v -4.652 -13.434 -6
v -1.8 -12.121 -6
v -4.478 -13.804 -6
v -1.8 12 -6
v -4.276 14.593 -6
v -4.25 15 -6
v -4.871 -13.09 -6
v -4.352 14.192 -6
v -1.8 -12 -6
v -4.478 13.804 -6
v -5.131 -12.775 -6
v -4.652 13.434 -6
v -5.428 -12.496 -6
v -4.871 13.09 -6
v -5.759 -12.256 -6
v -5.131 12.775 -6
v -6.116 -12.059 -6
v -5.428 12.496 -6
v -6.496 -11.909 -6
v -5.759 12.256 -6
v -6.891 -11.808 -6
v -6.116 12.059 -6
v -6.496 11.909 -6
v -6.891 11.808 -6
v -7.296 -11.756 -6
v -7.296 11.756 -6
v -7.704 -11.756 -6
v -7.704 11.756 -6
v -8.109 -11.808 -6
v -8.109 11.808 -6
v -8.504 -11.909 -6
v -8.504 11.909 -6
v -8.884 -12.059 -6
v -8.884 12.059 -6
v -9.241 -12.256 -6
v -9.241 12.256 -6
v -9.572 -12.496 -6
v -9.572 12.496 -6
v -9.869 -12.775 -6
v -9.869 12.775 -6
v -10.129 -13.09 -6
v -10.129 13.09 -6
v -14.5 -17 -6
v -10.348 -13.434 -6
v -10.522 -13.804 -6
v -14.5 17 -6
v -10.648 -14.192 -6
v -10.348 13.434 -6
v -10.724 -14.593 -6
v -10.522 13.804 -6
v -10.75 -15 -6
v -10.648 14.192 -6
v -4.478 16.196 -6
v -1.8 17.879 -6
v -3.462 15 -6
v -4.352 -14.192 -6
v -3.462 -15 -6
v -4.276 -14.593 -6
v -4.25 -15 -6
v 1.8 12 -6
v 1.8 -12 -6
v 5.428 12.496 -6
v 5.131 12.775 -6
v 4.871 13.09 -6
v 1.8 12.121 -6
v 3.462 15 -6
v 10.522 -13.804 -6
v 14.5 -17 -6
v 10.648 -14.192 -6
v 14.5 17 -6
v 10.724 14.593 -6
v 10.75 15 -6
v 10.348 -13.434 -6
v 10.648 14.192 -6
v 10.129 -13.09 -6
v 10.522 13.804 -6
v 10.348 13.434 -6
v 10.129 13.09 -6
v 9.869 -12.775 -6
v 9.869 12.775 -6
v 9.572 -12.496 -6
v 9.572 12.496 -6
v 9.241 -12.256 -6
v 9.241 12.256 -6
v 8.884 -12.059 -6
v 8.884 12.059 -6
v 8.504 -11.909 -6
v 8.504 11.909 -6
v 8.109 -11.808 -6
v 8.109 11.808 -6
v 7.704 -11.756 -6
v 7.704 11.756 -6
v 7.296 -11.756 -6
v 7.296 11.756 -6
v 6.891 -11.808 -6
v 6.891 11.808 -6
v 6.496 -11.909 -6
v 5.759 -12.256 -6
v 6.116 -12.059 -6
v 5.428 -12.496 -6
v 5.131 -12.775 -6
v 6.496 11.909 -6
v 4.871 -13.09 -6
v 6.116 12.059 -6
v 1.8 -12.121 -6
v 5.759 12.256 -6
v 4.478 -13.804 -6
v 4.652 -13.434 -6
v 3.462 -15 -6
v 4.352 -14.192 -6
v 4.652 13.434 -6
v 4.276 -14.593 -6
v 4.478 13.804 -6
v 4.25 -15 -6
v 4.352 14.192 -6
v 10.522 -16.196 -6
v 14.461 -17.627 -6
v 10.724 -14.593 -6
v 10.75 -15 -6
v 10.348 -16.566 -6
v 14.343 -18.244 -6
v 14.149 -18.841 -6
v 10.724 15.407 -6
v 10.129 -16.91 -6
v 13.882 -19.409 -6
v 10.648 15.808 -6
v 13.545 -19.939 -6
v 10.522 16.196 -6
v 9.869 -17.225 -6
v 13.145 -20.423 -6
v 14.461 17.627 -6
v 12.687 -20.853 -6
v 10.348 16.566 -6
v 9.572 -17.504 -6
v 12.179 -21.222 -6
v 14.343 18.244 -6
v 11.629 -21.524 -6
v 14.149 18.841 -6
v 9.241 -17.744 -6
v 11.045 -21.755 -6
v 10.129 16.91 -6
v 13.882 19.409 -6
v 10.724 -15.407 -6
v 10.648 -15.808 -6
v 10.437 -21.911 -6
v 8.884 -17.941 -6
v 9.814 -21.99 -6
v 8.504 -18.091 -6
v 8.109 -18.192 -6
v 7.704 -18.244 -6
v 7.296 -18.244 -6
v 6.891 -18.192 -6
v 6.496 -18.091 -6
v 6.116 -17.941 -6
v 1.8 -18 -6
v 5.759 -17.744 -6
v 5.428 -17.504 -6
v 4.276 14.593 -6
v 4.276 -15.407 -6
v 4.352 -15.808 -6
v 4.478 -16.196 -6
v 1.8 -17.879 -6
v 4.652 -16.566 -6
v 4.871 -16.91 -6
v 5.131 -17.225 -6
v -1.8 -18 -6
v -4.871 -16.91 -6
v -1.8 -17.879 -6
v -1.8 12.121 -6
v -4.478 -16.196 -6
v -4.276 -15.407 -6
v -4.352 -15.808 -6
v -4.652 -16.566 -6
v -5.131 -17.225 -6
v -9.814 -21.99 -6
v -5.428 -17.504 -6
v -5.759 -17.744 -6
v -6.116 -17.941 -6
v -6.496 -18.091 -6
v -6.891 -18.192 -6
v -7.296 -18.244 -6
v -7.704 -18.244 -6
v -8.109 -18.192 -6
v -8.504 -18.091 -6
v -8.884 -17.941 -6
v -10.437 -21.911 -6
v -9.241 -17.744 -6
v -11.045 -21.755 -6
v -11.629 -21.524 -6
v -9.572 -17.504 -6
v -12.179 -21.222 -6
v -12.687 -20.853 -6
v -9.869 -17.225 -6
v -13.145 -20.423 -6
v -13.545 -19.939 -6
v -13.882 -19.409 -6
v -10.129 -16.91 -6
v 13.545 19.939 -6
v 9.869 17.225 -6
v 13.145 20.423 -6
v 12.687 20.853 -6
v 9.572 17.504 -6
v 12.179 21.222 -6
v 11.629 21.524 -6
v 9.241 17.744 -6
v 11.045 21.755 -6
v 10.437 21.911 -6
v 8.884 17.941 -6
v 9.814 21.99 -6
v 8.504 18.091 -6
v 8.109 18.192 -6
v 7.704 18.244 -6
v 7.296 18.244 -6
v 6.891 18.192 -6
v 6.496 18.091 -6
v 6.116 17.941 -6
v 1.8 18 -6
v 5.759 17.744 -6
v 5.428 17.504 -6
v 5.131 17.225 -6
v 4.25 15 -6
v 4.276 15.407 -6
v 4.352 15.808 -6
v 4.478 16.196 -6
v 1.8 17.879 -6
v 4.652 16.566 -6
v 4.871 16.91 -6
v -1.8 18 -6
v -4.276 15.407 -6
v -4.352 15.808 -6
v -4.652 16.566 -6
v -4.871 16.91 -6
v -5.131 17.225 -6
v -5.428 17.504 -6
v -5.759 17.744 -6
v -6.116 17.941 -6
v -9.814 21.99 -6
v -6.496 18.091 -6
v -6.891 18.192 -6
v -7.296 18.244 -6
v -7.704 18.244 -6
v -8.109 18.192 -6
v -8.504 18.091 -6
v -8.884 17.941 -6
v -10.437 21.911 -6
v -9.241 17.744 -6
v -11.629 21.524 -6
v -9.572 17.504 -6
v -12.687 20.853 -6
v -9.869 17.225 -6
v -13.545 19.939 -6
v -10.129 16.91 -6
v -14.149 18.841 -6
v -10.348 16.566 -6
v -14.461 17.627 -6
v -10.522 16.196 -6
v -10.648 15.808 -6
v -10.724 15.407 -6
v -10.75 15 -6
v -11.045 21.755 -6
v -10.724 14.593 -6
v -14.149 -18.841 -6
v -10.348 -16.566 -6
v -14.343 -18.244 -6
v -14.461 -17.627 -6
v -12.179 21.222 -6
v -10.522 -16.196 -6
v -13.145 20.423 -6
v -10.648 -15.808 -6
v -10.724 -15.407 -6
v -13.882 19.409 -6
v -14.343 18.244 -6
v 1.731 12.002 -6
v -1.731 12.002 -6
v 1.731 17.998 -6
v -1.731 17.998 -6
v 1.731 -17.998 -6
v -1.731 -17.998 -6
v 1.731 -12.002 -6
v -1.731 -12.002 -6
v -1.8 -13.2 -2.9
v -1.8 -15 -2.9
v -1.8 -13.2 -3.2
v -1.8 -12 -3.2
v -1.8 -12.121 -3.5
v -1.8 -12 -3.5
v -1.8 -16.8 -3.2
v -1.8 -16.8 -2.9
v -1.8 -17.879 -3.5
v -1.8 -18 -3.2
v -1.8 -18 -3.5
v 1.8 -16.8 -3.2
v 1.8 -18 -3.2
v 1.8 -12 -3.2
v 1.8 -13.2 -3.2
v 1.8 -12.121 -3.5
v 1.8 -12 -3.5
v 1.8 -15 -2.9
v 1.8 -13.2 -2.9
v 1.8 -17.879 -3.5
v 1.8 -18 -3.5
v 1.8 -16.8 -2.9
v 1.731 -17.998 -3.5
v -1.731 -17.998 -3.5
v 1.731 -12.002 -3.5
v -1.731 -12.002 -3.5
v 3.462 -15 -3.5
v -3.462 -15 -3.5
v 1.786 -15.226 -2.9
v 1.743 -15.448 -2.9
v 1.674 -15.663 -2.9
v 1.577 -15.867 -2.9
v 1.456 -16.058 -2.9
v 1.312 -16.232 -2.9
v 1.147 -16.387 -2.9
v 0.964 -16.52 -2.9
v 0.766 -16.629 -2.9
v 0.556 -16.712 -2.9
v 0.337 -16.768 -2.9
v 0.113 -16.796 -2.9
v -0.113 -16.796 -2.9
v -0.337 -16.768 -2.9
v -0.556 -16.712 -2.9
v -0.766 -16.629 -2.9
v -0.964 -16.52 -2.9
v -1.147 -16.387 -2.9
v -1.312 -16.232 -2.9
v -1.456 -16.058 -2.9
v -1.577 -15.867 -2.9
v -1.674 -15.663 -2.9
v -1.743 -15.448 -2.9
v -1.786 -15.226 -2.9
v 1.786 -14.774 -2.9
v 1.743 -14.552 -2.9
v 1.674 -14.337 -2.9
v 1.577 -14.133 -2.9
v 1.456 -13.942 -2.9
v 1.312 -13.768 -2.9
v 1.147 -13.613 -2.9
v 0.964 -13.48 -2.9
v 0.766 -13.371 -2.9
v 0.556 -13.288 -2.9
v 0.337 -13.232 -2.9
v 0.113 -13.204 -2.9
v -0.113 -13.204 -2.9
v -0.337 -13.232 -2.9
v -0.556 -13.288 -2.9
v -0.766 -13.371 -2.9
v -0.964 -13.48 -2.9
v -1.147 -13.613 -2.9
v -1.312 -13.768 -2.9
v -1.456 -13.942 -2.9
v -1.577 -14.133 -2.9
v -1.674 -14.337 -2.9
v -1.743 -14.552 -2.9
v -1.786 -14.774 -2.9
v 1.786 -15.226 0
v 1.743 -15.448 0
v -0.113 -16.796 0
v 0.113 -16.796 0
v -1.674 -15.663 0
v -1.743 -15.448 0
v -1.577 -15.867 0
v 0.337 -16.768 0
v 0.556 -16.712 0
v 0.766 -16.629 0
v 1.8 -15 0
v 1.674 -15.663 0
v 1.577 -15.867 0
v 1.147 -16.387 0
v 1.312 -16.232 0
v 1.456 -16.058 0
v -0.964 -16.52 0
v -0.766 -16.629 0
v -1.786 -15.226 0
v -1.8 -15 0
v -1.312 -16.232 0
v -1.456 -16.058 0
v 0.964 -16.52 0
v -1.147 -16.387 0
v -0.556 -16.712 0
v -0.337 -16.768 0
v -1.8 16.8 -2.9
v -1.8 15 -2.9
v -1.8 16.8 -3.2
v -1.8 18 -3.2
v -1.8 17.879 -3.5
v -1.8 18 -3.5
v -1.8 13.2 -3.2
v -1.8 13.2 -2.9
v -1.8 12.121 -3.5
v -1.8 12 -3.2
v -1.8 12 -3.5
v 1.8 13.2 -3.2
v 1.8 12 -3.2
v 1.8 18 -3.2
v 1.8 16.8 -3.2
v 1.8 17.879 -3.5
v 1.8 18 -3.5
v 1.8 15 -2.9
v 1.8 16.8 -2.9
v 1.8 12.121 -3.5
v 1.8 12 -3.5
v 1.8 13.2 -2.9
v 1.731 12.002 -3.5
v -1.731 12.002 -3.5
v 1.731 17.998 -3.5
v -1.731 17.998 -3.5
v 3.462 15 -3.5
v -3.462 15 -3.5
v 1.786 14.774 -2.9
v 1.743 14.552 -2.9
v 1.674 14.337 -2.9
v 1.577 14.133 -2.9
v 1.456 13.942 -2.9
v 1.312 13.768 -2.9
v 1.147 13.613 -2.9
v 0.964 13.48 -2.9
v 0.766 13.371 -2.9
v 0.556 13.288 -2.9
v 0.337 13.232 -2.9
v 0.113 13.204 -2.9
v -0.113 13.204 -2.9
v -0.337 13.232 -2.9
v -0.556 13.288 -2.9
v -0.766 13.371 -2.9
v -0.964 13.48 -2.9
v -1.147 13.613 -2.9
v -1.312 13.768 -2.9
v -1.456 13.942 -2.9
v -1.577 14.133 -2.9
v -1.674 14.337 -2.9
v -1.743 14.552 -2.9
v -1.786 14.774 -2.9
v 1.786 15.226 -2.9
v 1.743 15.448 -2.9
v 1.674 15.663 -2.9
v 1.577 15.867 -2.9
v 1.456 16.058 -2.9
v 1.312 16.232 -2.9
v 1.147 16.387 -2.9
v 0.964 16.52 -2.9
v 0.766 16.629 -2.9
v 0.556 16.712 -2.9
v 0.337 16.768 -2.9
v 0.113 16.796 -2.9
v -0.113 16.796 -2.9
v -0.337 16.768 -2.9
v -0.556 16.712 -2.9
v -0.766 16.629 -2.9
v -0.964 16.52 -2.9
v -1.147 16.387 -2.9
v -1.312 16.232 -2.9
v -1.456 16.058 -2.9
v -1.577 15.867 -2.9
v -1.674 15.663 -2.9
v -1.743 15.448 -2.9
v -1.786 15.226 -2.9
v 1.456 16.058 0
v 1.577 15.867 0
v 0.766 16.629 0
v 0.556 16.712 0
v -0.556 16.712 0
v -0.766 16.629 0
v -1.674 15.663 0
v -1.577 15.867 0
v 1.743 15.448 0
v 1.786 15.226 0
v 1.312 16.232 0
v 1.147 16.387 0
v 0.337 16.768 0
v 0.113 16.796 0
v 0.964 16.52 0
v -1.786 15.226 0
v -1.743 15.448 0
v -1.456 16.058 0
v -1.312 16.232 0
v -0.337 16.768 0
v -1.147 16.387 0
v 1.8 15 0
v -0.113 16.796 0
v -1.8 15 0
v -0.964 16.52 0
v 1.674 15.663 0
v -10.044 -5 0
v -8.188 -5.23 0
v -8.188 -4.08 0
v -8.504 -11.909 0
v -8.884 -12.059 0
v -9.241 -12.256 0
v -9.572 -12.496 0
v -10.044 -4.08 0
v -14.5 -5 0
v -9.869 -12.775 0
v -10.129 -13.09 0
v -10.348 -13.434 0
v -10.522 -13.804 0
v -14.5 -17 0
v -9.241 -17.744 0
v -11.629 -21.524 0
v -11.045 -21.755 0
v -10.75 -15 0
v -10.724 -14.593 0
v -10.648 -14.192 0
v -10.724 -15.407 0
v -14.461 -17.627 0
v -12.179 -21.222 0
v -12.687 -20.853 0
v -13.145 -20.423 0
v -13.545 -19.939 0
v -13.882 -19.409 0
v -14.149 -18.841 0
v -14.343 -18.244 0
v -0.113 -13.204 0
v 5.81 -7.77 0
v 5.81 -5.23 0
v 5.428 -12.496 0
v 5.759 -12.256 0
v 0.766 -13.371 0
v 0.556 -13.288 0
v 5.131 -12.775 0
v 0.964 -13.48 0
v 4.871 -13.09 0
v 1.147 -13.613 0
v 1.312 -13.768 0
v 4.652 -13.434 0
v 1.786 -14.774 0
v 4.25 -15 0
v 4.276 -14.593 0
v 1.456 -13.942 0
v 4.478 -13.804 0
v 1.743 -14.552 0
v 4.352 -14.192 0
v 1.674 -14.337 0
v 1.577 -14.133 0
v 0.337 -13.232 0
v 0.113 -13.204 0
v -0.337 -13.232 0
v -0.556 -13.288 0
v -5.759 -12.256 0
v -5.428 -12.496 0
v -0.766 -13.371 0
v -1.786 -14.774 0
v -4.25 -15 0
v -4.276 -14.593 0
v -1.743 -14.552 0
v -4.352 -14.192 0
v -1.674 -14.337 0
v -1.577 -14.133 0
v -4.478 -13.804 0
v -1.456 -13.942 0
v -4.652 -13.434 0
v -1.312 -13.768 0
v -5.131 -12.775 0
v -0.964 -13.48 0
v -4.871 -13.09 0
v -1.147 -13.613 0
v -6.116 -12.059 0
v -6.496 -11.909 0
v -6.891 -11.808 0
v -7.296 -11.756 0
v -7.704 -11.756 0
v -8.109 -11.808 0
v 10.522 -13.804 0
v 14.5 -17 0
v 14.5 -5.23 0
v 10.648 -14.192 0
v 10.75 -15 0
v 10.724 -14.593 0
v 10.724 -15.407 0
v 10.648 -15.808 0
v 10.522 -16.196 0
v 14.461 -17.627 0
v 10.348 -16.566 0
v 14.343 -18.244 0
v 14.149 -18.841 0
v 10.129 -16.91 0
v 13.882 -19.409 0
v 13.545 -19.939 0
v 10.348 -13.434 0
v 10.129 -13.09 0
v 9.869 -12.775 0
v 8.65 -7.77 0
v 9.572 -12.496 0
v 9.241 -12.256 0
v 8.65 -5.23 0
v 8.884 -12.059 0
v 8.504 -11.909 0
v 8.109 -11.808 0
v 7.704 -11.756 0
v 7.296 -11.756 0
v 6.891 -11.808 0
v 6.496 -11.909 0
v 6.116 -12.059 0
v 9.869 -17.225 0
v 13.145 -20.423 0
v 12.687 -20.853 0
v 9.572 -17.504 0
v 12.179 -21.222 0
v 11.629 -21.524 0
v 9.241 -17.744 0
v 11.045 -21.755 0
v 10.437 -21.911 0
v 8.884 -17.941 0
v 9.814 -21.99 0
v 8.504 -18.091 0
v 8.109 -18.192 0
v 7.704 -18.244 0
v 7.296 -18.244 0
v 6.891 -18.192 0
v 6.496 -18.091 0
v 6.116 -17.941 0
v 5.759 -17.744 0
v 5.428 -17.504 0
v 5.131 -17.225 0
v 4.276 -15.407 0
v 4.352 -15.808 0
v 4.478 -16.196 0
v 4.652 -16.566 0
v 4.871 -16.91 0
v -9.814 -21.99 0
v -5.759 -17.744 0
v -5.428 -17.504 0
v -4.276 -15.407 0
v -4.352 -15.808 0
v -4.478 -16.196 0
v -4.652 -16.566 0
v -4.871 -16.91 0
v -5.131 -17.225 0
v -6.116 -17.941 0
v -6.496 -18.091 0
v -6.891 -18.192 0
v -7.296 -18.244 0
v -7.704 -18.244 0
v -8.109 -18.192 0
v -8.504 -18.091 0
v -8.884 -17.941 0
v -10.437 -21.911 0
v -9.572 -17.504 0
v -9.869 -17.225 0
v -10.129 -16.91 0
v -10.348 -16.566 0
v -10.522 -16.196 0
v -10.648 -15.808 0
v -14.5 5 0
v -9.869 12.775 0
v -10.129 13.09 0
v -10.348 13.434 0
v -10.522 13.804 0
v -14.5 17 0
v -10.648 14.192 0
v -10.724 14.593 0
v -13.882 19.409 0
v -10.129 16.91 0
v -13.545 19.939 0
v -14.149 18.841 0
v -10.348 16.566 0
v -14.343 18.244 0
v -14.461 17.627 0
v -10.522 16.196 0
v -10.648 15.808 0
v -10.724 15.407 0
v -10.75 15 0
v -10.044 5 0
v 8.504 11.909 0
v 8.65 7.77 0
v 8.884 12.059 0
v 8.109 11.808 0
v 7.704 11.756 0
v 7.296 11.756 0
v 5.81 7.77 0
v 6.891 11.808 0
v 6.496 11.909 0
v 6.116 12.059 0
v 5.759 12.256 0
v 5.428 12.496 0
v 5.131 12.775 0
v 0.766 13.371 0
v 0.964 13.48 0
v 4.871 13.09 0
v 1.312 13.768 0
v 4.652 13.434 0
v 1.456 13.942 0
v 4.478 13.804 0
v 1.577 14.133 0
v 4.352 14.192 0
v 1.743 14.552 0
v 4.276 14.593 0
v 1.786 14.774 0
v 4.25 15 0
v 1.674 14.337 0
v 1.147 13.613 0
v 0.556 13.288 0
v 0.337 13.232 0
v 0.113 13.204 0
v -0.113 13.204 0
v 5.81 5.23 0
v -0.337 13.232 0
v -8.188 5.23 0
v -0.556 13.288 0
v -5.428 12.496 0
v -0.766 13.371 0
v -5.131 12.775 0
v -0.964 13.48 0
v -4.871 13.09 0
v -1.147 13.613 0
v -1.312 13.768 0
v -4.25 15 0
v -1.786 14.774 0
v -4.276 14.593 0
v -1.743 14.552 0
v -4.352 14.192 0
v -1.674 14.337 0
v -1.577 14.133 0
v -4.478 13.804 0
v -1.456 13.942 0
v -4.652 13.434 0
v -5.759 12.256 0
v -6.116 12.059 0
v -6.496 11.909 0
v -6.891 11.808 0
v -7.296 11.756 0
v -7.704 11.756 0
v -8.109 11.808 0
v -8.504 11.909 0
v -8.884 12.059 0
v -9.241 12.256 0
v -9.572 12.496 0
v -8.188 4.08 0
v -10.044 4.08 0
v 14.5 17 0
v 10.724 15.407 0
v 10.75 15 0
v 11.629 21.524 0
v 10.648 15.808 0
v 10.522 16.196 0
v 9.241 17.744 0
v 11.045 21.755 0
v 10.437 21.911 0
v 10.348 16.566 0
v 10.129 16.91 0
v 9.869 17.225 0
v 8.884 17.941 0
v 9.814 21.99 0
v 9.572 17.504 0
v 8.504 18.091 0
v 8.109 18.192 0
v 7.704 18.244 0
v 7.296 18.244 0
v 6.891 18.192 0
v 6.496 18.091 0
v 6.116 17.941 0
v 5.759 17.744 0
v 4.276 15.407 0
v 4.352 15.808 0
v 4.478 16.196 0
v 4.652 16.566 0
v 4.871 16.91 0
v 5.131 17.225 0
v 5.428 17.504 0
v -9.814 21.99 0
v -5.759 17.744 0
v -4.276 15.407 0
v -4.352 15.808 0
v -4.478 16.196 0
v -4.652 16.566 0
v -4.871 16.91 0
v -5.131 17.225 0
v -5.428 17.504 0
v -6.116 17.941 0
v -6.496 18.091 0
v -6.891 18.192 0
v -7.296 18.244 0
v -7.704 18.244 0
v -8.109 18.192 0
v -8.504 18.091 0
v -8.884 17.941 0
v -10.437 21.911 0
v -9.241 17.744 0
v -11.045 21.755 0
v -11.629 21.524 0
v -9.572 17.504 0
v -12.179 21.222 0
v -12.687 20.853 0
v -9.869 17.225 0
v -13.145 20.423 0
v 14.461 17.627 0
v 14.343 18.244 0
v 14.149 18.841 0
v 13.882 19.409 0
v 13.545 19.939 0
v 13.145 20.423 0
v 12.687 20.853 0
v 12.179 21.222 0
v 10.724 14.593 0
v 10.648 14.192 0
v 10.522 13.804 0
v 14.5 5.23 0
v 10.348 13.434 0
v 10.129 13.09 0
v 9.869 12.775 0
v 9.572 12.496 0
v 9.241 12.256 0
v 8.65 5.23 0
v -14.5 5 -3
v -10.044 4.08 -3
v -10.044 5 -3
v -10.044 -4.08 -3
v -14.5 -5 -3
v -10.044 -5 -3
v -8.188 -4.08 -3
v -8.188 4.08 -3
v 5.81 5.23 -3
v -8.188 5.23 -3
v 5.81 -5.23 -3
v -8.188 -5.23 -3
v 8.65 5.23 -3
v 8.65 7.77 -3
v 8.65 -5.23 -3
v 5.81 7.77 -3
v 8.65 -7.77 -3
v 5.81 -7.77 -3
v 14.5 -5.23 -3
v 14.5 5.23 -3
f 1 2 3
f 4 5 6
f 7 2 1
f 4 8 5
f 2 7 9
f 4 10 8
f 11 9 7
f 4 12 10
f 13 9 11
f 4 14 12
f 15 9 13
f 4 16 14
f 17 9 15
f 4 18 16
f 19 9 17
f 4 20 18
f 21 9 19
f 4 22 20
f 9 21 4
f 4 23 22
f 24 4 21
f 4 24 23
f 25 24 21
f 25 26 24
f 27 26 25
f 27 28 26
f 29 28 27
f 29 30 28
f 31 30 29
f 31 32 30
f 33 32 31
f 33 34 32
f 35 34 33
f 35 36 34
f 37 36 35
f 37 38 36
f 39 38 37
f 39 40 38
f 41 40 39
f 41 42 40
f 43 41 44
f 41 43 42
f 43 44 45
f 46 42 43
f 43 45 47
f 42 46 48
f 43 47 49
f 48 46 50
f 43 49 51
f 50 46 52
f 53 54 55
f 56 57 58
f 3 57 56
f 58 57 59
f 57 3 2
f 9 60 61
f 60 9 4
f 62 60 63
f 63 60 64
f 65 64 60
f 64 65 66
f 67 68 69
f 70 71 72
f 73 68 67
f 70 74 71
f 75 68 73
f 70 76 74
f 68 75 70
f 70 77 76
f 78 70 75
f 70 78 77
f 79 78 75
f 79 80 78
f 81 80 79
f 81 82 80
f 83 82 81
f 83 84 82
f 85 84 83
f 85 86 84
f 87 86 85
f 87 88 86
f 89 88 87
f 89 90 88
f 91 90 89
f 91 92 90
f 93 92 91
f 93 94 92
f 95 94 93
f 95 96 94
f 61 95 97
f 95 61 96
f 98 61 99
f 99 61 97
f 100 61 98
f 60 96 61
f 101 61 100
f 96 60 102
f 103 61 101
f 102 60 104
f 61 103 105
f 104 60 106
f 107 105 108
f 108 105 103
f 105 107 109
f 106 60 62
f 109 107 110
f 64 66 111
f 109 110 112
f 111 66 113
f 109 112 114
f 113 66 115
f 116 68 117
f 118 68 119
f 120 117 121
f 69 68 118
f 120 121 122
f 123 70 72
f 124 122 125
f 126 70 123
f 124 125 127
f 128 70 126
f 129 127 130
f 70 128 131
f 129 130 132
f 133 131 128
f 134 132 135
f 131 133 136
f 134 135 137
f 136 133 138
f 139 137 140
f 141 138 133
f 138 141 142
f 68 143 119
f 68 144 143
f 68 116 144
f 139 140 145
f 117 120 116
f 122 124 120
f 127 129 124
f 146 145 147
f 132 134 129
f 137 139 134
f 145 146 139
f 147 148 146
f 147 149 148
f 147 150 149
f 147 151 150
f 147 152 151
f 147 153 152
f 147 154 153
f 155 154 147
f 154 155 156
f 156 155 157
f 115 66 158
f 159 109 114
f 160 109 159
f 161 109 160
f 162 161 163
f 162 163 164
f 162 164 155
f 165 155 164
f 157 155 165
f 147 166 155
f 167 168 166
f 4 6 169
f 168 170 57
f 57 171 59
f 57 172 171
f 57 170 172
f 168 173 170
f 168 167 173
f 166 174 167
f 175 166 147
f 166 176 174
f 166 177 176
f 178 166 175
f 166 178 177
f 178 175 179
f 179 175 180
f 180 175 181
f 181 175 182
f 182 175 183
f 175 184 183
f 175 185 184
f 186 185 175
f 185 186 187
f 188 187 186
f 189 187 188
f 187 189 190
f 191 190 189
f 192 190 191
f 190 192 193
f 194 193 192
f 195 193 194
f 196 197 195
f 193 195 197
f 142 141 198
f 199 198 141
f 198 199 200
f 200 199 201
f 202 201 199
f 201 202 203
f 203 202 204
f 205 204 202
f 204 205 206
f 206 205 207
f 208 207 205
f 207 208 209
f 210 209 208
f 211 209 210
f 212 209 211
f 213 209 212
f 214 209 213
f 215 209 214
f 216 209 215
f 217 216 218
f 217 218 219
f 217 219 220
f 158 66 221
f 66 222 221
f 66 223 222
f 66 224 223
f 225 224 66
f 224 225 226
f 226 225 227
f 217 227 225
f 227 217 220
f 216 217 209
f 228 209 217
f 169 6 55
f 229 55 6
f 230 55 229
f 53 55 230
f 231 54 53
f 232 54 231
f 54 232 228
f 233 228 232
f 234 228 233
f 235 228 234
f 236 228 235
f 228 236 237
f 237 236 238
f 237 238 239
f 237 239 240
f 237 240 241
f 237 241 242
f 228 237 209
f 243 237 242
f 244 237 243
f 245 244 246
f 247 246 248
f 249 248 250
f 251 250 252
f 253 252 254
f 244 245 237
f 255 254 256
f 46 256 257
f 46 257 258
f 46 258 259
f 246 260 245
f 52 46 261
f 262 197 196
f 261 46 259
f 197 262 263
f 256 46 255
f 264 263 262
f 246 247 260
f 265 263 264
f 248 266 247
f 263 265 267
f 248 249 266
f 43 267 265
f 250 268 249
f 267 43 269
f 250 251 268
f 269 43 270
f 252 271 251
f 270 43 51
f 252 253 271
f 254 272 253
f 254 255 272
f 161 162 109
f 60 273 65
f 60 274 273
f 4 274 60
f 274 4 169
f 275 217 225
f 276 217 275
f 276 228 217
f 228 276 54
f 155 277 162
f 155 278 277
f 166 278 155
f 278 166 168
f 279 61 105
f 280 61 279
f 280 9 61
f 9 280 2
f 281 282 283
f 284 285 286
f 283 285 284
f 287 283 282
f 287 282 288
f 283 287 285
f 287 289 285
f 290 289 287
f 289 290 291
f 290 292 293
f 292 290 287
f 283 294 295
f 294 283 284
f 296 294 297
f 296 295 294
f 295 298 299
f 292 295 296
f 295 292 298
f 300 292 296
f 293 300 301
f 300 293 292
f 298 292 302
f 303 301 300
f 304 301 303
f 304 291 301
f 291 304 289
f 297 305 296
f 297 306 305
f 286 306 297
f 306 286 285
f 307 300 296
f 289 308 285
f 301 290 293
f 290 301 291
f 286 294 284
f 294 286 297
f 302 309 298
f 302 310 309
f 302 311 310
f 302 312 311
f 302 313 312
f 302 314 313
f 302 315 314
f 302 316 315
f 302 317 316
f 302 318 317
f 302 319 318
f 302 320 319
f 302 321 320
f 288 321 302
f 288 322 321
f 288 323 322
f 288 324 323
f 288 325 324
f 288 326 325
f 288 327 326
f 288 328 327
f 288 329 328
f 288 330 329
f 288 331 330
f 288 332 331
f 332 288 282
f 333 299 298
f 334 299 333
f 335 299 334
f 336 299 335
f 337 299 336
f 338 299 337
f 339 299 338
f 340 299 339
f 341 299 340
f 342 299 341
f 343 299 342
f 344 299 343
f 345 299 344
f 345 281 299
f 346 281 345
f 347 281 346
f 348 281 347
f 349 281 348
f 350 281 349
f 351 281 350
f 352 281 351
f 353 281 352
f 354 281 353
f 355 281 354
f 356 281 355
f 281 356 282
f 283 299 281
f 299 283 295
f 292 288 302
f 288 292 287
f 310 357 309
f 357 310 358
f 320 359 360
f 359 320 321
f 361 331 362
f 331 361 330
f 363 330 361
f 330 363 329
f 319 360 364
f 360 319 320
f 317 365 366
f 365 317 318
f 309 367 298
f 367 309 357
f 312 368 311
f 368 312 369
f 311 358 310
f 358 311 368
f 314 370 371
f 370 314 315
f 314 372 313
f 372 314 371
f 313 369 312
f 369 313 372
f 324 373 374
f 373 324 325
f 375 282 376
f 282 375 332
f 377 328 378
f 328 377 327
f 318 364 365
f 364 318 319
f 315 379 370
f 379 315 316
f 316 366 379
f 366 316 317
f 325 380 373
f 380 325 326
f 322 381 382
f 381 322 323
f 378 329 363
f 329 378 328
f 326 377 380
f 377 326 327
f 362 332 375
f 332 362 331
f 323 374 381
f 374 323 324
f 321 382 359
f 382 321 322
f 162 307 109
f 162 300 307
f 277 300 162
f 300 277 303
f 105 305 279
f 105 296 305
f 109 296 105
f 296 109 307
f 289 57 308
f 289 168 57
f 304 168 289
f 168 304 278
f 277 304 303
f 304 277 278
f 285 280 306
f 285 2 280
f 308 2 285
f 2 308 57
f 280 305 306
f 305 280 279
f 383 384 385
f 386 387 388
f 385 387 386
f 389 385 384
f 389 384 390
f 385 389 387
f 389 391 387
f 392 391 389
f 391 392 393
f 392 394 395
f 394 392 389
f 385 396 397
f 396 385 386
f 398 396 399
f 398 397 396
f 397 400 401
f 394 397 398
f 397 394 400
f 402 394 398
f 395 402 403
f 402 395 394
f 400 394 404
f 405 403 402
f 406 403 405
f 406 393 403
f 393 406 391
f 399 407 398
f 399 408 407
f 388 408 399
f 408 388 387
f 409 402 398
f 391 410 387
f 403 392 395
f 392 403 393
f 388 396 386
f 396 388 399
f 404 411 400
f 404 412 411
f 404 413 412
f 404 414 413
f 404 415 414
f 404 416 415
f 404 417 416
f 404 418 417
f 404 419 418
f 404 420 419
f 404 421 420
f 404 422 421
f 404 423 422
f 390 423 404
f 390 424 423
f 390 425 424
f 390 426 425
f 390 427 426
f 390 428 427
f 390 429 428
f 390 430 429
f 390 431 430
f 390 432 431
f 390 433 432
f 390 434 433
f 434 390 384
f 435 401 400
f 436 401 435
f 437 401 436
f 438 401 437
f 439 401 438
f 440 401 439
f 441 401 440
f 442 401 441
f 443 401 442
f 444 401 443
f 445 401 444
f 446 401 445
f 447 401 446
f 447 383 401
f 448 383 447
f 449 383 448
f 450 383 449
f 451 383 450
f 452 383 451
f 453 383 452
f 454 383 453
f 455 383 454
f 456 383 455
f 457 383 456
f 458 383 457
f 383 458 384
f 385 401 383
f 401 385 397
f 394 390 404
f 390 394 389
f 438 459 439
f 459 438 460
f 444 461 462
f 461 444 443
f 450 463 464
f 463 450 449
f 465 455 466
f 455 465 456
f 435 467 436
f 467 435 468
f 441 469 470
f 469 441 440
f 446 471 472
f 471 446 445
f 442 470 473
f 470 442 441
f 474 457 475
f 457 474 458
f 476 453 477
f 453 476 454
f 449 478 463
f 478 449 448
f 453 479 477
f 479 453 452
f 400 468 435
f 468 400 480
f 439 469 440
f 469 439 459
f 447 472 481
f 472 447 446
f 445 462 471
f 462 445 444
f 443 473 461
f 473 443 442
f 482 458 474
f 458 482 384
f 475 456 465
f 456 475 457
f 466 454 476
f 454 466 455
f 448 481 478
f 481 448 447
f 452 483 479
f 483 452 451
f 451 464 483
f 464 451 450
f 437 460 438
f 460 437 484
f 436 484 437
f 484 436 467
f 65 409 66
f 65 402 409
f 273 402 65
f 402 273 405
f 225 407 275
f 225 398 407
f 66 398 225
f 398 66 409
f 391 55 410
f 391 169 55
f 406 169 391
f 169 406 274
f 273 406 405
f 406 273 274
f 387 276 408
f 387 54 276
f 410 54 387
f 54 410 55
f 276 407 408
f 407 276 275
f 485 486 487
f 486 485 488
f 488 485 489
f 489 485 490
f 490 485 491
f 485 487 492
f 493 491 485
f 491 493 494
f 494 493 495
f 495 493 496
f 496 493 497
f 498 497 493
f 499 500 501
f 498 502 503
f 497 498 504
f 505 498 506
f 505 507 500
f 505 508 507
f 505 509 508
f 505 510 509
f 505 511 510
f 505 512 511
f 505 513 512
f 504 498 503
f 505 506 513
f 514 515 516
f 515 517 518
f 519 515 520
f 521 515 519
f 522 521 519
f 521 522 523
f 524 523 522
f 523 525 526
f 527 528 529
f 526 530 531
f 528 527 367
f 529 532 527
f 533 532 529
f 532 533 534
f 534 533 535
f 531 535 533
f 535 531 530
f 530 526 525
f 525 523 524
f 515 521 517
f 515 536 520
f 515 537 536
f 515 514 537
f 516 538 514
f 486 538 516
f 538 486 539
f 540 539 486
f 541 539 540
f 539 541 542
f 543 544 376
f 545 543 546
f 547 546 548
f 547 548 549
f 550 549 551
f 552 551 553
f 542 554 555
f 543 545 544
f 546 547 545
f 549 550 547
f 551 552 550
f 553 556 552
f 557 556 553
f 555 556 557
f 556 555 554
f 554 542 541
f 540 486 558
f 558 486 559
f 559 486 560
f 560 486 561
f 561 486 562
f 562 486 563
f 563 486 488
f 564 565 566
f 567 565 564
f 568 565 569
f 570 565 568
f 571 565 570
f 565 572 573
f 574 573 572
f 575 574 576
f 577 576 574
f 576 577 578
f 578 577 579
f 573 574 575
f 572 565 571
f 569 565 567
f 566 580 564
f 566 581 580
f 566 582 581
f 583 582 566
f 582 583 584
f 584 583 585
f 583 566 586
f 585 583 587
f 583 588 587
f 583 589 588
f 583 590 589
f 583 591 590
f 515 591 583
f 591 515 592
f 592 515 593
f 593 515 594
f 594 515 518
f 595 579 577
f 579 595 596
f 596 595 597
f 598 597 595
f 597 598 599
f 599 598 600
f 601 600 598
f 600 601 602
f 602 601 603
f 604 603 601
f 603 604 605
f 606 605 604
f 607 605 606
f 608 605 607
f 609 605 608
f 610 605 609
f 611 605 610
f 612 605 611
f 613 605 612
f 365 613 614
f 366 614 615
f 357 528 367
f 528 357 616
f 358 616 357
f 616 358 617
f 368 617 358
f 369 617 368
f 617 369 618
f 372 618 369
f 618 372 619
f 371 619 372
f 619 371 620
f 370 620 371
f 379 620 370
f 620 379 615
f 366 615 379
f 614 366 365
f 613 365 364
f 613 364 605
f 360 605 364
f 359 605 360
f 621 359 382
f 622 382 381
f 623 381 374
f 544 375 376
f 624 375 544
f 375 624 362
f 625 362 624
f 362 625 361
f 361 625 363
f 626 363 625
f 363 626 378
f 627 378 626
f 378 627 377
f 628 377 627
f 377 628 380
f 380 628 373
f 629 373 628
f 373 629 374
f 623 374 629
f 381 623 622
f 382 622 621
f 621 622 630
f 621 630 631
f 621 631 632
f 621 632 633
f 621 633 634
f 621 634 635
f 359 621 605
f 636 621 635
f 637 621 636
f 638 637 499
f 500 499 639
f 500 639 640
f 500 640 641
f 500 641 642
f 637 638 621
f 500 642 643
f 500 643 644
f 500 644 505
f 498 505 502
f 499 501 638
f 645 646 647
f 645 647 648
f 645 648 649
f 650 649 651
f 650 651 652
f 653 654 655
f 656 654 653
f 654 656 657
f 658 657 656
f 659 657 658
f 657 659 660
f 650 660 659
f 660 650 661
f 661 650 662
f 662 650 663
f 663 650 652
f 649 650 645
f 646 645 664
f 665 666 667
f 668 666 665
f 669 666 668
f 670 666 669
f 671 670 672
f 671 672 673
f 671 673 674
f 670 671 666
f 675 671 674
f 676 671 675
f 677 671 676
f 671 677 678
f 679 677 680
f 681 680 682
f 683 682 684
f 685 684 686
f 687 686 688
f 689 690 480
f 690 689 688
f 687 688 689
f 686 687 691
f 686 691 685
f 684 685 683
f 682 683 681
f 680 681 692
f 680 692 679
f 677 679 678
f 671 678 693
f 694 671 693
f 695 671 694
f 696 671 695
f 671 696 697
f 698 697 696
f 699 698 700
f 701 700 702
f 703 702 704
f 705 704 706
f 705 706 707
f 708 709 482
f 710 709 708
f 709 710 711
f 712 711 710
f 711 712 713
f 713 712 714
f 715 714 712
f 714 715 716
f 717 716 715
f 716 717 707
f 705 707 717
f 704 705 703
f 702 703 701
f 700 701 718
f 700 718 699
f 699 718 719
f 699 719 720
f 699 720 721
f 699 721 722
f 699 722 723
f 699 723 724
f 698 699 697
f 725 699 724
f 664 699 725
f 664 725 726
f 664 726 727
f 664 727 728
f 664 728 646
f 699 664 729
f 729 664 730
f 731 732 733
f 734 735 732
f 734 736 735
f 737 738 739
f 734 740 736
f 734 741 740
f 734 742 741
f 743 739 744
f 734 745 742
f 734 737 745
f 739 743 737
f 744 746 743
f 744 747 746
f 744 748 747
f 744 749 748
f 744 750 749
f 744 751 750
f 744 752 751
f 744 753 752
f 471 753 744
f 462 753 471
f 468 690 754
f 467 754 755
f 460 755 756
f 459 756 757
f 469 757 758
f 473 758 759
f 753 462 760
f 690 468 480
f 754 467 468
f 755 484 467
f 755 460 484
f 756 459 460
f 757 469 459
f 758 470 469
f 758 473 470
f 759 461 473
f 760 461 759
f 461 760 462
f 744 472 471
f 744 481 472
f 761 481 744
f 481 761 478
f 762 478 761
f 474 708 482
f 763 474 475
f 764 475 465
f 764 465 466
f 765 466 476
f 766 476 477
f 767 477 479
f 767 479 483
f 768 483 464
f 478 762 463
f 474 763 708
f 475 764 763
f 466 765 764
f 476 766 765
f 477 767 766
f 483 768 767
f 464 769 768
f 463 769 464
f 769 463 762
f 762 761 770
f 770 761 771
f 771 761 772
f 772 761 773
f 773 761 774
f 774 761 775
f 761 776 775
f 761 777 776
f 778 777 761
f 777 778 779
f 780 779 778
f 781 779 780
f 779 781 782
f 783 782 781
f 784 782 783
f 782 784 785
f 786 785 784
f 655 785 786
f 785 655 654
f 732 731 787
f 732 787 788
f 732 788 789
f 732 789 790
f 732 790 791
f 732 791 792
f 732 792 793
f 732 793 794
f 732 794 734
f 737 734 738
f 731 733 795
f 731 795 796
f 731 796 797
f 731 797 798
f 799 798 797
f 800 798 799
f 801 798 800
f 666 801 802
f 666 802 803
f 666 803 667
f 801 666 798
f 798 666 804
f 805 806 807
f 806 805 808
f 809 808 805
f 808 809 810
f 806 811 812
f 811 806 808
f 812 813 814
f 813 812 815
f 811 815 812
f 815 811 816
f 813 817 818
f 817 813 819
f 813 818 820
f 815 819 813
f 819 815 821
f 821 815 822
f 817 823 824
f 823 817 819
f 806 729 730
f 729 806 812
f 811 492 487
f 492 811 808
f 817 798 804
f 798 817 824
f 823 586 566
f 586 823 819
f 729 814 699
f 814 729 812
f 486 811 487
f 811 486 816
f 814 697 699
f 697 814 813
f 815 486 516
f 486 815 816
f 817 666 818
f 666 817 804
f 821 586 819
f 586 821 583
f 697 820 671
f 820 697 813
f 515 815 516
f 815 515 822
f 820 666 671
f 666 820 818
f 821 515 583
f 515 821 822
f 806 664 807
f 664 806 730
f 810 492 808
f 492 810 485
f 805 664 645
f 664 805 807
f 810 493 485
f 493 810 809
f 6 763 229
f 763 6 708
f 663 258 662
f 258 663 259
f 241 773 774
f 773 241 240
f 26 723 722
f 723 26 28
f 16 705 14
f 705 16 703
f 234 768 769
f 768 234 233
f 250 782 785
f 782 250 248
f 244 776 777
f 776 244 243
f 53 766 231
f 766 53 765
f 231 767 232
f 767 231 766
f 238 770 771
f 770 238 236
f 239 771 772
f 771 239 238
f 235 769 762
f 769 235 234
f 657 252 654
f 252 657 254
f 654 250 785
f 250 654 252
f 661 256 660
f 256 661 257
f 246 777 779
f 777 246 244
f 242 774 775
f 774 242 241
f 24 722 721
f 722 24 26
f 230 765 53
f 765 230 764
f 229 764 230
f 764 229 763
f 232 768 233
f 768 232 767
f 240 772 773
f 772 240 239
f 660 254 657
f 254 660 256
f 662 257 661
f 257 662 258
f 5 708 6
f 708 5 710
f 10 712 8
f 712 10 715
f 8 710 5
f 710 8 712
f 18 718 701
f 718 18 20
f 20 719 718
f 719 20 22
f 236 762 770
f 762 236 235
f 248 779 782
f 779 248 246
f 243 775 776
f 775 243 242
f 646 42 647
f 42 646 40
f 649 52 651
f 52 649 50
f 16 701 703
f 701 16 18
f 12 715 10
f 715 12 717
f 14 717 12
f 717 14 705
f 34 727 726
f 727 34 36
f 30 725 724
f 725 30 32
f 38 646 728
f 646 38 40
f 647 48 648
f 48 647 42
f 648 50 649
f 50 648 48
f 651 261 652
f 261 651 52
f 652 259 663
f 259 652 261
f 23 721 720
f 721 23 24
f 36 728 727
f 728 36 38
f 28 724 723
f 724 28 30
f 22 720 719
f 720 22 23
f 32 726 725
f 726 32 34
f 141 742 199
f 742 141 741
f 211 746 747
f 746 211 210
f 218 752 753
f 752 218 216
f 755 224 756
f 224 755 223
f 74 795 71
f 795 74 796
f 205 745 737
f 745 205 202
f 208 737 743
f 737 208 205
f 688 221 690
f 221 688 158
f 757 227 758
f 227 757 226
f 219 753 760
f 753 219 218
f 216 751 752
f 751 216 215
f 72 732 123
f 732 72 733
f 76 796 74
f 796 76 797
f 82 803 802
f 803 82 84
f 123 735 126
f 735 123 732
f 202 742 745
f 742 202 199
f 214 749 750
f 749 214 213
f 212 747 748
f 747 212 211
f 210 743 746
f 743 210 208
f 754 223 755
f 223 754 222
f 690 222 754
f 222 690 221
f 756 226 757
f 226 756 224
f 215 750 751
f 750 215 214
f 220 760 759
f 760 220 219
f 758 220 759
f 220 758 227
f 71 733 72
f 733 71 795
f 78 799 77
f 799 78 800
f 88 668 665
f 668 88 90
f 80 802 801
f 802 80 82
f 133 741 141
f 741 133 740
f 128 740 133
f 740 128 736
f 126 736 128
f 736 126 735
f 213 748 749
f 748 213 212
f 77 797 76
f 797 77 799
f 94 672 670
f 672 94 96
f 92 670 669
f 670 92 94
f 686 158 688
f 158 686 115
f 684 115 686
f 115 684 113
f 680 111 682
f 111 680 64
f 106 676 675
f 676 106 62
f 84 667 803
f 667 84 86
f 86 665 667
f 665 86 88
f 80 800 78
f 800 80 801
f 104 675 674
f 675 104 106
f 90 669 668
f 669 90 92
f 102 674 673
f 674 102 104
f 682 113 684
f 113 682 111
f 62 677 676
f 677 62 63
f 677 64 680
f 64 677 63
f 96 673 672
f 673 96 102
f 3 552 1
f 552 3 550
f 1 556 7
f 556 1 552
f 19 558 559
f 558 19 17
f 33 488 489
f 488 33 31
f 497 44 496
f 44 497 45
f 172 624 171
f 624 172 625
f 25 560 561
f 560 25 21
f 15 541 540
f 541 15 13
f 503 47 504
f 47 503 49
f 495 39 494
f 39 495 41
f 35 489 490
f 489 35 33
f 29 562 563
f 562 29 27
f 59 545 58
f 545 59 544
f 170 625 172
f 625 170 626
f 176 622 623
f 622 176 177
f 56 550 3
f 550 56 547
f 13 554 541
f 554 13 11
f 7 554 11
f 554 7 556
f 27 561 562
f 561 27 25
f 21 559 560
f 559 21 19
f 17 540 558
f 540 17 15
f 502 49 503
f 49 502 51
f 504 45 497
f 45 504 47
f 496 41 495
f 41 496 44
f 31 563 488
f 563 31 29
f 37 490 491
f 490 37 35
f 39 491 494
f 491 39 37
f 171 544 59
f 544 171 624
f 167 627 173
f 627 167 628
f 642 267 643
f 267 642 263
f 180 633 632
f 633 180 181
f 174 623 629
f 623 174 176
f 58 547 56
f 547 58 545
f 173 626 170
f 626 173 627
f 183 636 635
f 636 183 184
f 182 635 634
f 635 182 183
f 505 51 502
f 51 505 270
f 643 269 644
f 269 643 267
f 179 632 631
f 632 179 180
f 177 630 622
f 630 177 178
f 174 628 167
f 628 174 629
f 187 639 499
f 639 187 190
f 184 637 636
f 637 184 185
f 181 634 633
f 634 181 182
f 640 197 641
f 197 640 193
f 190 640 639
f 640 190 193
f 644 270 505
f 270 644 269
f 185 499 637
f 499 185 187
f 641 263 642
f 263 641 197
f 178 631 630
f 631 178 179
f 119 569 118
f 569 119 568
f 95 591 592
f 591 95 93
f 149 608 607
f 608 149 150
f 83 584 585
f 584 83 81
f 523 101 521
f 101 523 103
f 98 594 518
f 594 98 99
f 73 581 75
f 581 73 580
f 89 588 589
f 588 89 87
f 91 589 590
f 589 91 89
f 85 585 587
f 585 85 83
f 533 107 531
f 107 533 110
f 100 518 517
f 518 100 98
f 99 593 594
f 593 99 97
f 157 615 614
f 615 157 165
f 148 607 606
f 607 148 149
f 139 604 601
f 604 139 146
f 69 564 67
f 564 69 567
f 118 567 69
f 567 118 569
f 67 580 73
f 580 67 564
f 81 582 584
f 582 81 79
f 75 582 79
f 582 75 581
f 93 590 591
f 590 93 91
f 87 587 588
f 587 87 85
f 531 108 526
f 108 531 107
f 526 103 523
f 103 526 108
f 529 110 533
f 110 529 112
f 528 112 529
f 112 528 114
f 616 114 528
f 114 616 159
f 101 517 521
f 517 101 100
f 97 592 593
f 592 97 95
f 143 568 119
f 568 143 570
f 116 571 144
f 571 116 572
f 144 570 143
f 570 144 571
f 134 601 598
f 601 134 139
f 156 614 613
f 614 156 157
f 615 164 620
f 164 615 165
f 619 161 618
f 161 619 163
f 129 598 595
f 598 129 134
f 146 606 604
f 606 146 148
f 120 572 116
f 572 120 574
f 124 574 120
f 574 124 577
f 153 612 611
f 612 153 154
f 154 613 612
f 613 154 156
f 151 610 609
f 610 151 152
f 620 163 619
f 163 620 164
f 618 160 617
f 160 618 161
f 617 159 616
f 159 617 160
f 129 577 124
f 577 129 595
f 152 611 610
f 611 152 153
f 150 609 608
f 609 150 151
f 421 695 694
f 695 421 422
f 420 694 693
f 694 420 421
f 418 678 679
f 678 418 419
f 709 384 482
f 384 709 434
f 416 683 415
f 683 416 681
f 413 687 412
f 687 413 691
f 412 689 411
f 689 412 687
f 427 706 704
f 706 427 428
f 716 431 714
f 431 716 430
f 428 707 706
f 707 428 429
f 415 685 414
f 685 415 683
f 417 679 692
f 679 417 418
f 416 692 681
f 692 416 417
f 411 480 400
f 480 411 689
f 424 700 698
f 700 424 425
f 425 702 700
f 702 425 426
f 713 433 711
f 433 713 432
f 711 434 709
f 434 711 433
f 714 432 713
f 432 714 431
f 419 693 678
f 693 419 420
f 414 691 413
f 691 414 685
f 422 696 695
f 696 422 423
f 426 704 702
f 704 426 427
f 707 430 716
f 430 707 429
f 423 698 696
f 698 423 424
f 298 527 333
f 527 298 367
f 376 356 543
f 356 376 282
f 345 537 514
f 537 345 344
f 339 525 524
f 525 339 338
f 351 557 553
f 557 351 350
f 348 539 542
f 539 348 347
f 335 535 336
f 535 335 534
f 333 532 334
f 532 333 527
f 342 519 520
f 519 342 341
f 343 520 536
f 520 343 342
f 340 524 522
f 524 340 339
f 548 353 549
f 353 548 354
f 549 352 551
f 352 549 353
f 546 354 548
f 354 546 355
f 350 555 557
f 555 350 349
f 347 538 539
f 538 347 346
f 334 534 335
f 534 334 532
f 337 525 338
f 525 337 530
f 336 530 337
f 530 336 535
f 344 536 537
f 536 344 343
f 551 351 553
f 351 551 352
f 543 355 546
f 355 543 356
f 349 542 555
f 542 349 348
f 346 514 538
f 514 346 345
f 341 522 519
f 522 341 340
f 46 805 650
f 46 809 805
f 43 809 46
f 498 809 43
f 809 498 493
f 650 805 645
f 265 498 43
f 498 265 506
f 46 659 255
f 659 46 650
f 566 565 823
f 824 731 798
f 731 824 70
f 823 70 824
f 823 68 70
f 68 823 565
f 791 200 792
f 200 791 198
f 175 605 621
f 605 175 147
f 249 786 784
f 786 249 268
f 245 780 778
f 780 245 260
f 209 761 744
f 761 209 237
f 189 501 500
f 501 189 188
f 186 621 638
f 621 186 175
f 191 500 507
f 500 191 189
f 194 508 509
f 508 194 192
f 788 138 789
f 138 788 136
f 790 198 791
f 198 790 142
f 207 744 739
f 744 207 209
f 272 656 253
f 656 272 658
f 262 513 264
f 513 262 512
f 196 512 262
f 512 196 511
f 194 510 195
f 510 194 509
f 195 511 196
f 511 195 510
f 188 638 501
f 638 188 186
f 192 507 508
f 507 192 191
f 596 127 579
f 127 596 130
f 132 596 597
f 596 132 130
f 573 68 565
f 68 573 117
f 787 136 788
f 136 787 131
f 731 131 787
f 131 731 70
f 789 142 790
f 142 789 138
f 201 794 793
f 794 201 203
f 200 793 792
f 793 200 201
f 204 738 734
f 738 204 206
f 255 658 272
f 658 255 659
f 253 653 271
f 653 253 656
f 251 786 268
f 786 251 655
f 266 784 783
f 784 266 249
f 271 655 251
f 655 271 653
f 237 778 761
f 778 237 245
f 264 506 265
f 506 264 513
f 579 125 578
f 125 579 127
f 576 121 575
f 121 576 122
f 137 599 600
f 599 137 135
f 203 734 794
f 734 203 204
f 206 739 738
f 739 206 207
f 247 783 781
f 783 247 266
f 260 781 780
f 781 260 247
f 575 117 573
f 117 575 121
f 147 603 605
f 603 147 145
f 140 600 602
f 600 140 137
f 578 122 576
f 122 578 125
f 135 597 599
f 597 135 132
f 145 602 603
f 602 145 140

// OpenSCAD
$fn = 50;


difference() {
	union() {
		translate(v = [0, 0, -6]) {
			hull() {
				translate(v = [-9.5000000000, 17.0000000000, 0]) {
					cylinder(h = 6, r = 5);
				}
				translate(v = [9.5000000000, 17.0000000000, 0]) {
					cylinder(h = 6, r = 5);
				}
				translate(v = [-9.5000000000, -17.0000000000, 0]) {
					cylinder(h = 6, r = 5);
				}
				translate(v = [9.5000000000, -17.0000000000, 0]) {
					cylinder(h = 6, r = 5);
				}
			}
		}
	}
	union() {
		translate(v = [0, -15, -6]) {
			rotate(a = [0, 0, 0]) {
				difference() {
					union() {
						translate(v = [-1.8000000000, -3.0000000000, -0.3000000000]) {
							cube(size = [3.6000000000, 6.0000000000, 0.3000000000]);
						}
						translate(v = [-1.8000000000, -1.8000000000, -0.6000000000]) {
							cube(size = [3.6000000000, 3.6000000000, 0.3000000000]);
						}
						translate(v = [-1.8000000000, -3.0000000000, 2.5000000000]) {
							cube(size = [3.6000000000, 6.0000000000, 0.3000000000]);
						}
						translate(v = [-1.8000000000, -1.8000000000, 2.8000000000]) {
							cube(size = [3.6000000000, 3.6000000000, 0.3000000000]);
						}
						translate(v = [0, 0, -50.0000000000]) {
							cylinder(h = 100, r = 1.8000000000);
						}
						linear_extrude(height = 2.5000000000) {
							polygon(points = [[3.4620000000, 0.0000000000], [1.7310000000, 2.9981799479], [-1.7310000000, 2.9981799479], [-3.4620000000, 0.0000000000], [-1.7310000000, -2.9981799479], [1.7310000000, -2.9981799479]]);
						}
						translate(v = [-1.8000000000, -3.0000000000, -0.3000000000]) {
							cube(size = [3.6000000000, 6.0000000000, 0.3000000000]);
						}
						translate(v = [-1.8000000000, -1.8000000000, -0.6000000000]) {
							cube(size = [3.6000000000, 3.6000000000, 0.3000000000]);
						}
						translate(v = [-1.8000000000, -3.0000000000, 2.5000000000]) {
							cube(size = [3.6000000000, 6.0000000000, 0.3000000000]);
						}
						translate(v = [-1.8000000000, -1.8000000000, 2.8000000000]) {
							cube(size = [3.6000000000, 3.6000000000, 0.3000000000]);
						}
						translate(v = [0, 0, -50.0000000000]) {
							cylinder(h = 100, r = 1.8000000000);
						}
						translate(v = [-1.8000000000, -3.0000000000, -0.3000000000]) {
							cube(size = [3.6000000000, 6.0000000000, 0.3000000000]);
						}
						translate(v = [-1.8000000000, -1.8000000000, -0.6000000000]) {
							cube(size = [3.6000000000, 3.6000000000, 0.3000000000]);
						}
						translate(v = [-1.8000000000, -3.0000000000, 2.5000000000]) {
							cube(size = [3.6000000000, 6.0000000000, 0.3000000000]);
						}
						translate(v = [-1.8000000000, -1.8000000000, 2.8000000000]) {
							cube(size = [3.6000000000, 3.6000000000, 0.3000000000]);
						}
						translate(v = [0, 0, -50.0000000000]) {
							cylinder(h = 100, r = 1.8000000000);
						}
					}
					union();
				}
			}
		}
		translate(v = [0, 15, -6]) {
			rotate(a = [0, 0, 0]) {
				difference() {
					union() {
						translate(v = [-1.8000000000, -3.0000000000, -0.3000000000]) {
							cube(size = [3.6000000000, 6.0000000000, 0.3000000000]);
						}
						translate(v = [-1.8000000000, -1.8000000000, -0.6000000000]) {
							cube(size = [3.6000000000, 3.6000000000, 0.3000000000]);
						}
						translate(v = [-1.8000000000, -3.0000000000, 2.5000000000]) {
							cube(size = [3.6000000000, 6.0000000000, 0.3000000000]);
						}
						translate(v = [-1.8000000000, -1.8000000000, 2.8000000000]) {
							cube(size = [3.6000000000, 3.6000000000, 0.3000000000]);
						}
						translate(v = [0, 0, -50.0000000000]) {
							cylinder(h = 100, r = 1.8000000000);
						}
						linear_extrude(height = 2.5000000000) {
							polygon(points = [[3.4620000000, 0.0000000000], [1.7310000000, 2.9981799479], [-1.7310000000, 2.9981799479], [-3.4620000000, 0.0000000000], [-1.7310000000, -2.9981799479], [1.7310000000, -2.9981799479]]);
						}
						translate(v = [-1.8000000000, -3.0000000000, -0.3000000000]) {
							cube(size = [3.6000000000, 6.0000000000, 0.3000000000]);
						}
						translate(v = [-1.8000000000, -1.8000000000, -0.6000000000]) {
							cube(size = [3.6000000000, 3.6000000000, 0.3000000000]);
						}
						translate(v = [-1.8000000000, -3.0000000000, 2.5000000000]) {
							cube(size = [3.6000000000, 6.0000000000, 0.3000000000]);
						}
						translate(v = [-1.8000000000, -1.8000000000, 2.8000000000]) {
							cube(size = [3.6000000000, 3.6000000000, 0.3000000000]);
						}
						translate(v = [0, 0, -50.0000000000]) {
							cylinder(h = 100, r = 1.8000000000);
						}
						translate(v = [-1.8000000000, -3.0000000000, -0.3000000000]) {
							cube(size = [3.6000000000, 6.0000000000, 0.3000000000]);
						}
						translate(v = [-1.8000000000, -1.8000000000, -0.6000000000]) {
							cube(size = [3.6000000000, 3.6000000000, 0.3000000000]);
						}
						translate(v = [-1.8000000000, -3.0000000000, 2.5000000000]) {
							cube(size = [3.6000000000, 6.0000000000, 0.3000000000]);
						}
						translate(v = [-1.8000000000, -1.8000000000, 2.8000000000]) {
							cube(size = [3.6000000000, 3.6000000000, 0.3000000000]);
						}
						translate(v = [0, 0, -50.0000000000]) {
							cylinder(h = 100, r = 1.8000000000);
						}
					}
					union();
				}
			}
		}
		translate(v = [15.0000000000, 0, -3]) {
			rotate(a = [0, 0, 180]) {
				difference() {
					union() {
						#translate(v = [23.0670000000, -4.0800000000, 0]) {
							cube(size = [5, 8.1600000000, 3]);
						}
						#translate(v = [0.2040000000, -5.2300000000, 0]) {
							cube(size = [6.3000000000, 10.4600000000, 3]);
						}
						#translate(v = [8.8880000000, -5.2300000000, 0]) {
							cube(size = [14.3000000000, 10.4600000000, 3]);
						}
						#translate(v = [6.3500000000, -7.7700000000, 0]) {
							cube(size = [2.8400000000, 15.5400000000, 3]);
						}
						#translate(v = [25.0440000000, -5.0000000000, 0]) {
							cube(size = [7, 10, 3]);
						}
					}
					union();
				}
			}
		}
		translate(v = [-7.5000000000, 15.0000000000, -50.0000000000]) {
			cylinder(h = 100, r = 3.2500000000);
		}
		translate(v = [7.5000000000, 15.0000000000, -50.0000000000]) {
			cylinder(h = 100, r = 3.2500000000);
		}
		translate(v = [-7.5000000000, -15.0000000000, -50.0000000000]) {
			cylinder(h = 100, r = 3.2500000000);
		}
		translate(v = [7.5000000000, -15.0000000000, -50.0000000000]) {
			cylinder(h = 100, r = 3.2500000000);
		}
		translate(v = [-7.5000000000, 15.0000000000, -50.0000000000]) {
			cylinder(h = 100, r = 1.8000000000);
		}
		translate(v = [0.0000000000, 15.0000000000, -50.0000000000]) {
			cylinder(h = 100, r = 1.8000000000);
		}
		translate(v = [7.5000000000, 15.0000000000, -50.0000000000]) {
			cylinder(h = 100, r = 1.8000000000);
		}
		translate(v = [-7.5000000000, -15.0000000000, -50.0000000000]) {
			cylinder(h = 100, r = 1.8000000000);
		}
		translate(v = [0.0000000000, -15.0000000000, -50.0000000000]) {
			cylinder(h = 100, r = 1.8000000000);
		}
		translate(v = [7.5000000000, -15.0000000000, -50.0000000000]) {
			cylinder(h = 100, r = 1.8000000000);
		}
		translate(v = [-7.5000000000, 15.0000000000, -50.0000000000]) {
			cylinder(h = 100, r = 1.8000000000);
		}
		translate(v = [0.0000000000, 15.0000000000, -50.0000000000]) {
			cylinder(h = 100, r = 1.8000000000);
		}
		translate(v = [7.5000000000, 15.0000000000, -50.0000000000]) {
			cylinder(h = 100, r = 1.8000000000);
		}
		translate(v = [-7.5000000000, -15.0000000000, -50.0000000000]) {
			cylinder(h = 100, r = 1.8000000000);
		}
		translate(v = [0.0000000000, -15.0000000000, -50.0000000000]) {
			cylinder(h = 100, r = 1.8000000000);
		}
		translate(v = [7.5000000000, -15.0000000000, -50.0000000000]) {
			cylinder(h = 100, r = 1.8000000000);
		}
		translate(v = [-7.5000000000, 15.0000000000, -50.0000000000]) {
			cylinder(h = 100, r = 1.8000000000);
		}
		translate(v = [0.0000000000, 15.0000000000, -50.0000000000]) {
			cylinder(h = 100, r = 1.8000000000);
		}
		translate(v = [7.5000000000, 15.0000000000, -50.0000000000]) {
			cylinder(h = 100, r = 1.8000000000);
		}
		translate(v = [-7.5000000000, -15.0000000000, -50.0000000000]) {
			cylinder(h = 100, r = 1.8000000000);
		}
		translate(v = [0.0000000000, -15.0000000000, -50.0000000000]) {
			cylinder(h = 100, r = 1.8000000000);
		}
		translate(v = [7.5000000000, -15.0000000000, -50.0000000000]) {
			cylinder(h = 100, r = 1.8000000000);
		}
	}
}
